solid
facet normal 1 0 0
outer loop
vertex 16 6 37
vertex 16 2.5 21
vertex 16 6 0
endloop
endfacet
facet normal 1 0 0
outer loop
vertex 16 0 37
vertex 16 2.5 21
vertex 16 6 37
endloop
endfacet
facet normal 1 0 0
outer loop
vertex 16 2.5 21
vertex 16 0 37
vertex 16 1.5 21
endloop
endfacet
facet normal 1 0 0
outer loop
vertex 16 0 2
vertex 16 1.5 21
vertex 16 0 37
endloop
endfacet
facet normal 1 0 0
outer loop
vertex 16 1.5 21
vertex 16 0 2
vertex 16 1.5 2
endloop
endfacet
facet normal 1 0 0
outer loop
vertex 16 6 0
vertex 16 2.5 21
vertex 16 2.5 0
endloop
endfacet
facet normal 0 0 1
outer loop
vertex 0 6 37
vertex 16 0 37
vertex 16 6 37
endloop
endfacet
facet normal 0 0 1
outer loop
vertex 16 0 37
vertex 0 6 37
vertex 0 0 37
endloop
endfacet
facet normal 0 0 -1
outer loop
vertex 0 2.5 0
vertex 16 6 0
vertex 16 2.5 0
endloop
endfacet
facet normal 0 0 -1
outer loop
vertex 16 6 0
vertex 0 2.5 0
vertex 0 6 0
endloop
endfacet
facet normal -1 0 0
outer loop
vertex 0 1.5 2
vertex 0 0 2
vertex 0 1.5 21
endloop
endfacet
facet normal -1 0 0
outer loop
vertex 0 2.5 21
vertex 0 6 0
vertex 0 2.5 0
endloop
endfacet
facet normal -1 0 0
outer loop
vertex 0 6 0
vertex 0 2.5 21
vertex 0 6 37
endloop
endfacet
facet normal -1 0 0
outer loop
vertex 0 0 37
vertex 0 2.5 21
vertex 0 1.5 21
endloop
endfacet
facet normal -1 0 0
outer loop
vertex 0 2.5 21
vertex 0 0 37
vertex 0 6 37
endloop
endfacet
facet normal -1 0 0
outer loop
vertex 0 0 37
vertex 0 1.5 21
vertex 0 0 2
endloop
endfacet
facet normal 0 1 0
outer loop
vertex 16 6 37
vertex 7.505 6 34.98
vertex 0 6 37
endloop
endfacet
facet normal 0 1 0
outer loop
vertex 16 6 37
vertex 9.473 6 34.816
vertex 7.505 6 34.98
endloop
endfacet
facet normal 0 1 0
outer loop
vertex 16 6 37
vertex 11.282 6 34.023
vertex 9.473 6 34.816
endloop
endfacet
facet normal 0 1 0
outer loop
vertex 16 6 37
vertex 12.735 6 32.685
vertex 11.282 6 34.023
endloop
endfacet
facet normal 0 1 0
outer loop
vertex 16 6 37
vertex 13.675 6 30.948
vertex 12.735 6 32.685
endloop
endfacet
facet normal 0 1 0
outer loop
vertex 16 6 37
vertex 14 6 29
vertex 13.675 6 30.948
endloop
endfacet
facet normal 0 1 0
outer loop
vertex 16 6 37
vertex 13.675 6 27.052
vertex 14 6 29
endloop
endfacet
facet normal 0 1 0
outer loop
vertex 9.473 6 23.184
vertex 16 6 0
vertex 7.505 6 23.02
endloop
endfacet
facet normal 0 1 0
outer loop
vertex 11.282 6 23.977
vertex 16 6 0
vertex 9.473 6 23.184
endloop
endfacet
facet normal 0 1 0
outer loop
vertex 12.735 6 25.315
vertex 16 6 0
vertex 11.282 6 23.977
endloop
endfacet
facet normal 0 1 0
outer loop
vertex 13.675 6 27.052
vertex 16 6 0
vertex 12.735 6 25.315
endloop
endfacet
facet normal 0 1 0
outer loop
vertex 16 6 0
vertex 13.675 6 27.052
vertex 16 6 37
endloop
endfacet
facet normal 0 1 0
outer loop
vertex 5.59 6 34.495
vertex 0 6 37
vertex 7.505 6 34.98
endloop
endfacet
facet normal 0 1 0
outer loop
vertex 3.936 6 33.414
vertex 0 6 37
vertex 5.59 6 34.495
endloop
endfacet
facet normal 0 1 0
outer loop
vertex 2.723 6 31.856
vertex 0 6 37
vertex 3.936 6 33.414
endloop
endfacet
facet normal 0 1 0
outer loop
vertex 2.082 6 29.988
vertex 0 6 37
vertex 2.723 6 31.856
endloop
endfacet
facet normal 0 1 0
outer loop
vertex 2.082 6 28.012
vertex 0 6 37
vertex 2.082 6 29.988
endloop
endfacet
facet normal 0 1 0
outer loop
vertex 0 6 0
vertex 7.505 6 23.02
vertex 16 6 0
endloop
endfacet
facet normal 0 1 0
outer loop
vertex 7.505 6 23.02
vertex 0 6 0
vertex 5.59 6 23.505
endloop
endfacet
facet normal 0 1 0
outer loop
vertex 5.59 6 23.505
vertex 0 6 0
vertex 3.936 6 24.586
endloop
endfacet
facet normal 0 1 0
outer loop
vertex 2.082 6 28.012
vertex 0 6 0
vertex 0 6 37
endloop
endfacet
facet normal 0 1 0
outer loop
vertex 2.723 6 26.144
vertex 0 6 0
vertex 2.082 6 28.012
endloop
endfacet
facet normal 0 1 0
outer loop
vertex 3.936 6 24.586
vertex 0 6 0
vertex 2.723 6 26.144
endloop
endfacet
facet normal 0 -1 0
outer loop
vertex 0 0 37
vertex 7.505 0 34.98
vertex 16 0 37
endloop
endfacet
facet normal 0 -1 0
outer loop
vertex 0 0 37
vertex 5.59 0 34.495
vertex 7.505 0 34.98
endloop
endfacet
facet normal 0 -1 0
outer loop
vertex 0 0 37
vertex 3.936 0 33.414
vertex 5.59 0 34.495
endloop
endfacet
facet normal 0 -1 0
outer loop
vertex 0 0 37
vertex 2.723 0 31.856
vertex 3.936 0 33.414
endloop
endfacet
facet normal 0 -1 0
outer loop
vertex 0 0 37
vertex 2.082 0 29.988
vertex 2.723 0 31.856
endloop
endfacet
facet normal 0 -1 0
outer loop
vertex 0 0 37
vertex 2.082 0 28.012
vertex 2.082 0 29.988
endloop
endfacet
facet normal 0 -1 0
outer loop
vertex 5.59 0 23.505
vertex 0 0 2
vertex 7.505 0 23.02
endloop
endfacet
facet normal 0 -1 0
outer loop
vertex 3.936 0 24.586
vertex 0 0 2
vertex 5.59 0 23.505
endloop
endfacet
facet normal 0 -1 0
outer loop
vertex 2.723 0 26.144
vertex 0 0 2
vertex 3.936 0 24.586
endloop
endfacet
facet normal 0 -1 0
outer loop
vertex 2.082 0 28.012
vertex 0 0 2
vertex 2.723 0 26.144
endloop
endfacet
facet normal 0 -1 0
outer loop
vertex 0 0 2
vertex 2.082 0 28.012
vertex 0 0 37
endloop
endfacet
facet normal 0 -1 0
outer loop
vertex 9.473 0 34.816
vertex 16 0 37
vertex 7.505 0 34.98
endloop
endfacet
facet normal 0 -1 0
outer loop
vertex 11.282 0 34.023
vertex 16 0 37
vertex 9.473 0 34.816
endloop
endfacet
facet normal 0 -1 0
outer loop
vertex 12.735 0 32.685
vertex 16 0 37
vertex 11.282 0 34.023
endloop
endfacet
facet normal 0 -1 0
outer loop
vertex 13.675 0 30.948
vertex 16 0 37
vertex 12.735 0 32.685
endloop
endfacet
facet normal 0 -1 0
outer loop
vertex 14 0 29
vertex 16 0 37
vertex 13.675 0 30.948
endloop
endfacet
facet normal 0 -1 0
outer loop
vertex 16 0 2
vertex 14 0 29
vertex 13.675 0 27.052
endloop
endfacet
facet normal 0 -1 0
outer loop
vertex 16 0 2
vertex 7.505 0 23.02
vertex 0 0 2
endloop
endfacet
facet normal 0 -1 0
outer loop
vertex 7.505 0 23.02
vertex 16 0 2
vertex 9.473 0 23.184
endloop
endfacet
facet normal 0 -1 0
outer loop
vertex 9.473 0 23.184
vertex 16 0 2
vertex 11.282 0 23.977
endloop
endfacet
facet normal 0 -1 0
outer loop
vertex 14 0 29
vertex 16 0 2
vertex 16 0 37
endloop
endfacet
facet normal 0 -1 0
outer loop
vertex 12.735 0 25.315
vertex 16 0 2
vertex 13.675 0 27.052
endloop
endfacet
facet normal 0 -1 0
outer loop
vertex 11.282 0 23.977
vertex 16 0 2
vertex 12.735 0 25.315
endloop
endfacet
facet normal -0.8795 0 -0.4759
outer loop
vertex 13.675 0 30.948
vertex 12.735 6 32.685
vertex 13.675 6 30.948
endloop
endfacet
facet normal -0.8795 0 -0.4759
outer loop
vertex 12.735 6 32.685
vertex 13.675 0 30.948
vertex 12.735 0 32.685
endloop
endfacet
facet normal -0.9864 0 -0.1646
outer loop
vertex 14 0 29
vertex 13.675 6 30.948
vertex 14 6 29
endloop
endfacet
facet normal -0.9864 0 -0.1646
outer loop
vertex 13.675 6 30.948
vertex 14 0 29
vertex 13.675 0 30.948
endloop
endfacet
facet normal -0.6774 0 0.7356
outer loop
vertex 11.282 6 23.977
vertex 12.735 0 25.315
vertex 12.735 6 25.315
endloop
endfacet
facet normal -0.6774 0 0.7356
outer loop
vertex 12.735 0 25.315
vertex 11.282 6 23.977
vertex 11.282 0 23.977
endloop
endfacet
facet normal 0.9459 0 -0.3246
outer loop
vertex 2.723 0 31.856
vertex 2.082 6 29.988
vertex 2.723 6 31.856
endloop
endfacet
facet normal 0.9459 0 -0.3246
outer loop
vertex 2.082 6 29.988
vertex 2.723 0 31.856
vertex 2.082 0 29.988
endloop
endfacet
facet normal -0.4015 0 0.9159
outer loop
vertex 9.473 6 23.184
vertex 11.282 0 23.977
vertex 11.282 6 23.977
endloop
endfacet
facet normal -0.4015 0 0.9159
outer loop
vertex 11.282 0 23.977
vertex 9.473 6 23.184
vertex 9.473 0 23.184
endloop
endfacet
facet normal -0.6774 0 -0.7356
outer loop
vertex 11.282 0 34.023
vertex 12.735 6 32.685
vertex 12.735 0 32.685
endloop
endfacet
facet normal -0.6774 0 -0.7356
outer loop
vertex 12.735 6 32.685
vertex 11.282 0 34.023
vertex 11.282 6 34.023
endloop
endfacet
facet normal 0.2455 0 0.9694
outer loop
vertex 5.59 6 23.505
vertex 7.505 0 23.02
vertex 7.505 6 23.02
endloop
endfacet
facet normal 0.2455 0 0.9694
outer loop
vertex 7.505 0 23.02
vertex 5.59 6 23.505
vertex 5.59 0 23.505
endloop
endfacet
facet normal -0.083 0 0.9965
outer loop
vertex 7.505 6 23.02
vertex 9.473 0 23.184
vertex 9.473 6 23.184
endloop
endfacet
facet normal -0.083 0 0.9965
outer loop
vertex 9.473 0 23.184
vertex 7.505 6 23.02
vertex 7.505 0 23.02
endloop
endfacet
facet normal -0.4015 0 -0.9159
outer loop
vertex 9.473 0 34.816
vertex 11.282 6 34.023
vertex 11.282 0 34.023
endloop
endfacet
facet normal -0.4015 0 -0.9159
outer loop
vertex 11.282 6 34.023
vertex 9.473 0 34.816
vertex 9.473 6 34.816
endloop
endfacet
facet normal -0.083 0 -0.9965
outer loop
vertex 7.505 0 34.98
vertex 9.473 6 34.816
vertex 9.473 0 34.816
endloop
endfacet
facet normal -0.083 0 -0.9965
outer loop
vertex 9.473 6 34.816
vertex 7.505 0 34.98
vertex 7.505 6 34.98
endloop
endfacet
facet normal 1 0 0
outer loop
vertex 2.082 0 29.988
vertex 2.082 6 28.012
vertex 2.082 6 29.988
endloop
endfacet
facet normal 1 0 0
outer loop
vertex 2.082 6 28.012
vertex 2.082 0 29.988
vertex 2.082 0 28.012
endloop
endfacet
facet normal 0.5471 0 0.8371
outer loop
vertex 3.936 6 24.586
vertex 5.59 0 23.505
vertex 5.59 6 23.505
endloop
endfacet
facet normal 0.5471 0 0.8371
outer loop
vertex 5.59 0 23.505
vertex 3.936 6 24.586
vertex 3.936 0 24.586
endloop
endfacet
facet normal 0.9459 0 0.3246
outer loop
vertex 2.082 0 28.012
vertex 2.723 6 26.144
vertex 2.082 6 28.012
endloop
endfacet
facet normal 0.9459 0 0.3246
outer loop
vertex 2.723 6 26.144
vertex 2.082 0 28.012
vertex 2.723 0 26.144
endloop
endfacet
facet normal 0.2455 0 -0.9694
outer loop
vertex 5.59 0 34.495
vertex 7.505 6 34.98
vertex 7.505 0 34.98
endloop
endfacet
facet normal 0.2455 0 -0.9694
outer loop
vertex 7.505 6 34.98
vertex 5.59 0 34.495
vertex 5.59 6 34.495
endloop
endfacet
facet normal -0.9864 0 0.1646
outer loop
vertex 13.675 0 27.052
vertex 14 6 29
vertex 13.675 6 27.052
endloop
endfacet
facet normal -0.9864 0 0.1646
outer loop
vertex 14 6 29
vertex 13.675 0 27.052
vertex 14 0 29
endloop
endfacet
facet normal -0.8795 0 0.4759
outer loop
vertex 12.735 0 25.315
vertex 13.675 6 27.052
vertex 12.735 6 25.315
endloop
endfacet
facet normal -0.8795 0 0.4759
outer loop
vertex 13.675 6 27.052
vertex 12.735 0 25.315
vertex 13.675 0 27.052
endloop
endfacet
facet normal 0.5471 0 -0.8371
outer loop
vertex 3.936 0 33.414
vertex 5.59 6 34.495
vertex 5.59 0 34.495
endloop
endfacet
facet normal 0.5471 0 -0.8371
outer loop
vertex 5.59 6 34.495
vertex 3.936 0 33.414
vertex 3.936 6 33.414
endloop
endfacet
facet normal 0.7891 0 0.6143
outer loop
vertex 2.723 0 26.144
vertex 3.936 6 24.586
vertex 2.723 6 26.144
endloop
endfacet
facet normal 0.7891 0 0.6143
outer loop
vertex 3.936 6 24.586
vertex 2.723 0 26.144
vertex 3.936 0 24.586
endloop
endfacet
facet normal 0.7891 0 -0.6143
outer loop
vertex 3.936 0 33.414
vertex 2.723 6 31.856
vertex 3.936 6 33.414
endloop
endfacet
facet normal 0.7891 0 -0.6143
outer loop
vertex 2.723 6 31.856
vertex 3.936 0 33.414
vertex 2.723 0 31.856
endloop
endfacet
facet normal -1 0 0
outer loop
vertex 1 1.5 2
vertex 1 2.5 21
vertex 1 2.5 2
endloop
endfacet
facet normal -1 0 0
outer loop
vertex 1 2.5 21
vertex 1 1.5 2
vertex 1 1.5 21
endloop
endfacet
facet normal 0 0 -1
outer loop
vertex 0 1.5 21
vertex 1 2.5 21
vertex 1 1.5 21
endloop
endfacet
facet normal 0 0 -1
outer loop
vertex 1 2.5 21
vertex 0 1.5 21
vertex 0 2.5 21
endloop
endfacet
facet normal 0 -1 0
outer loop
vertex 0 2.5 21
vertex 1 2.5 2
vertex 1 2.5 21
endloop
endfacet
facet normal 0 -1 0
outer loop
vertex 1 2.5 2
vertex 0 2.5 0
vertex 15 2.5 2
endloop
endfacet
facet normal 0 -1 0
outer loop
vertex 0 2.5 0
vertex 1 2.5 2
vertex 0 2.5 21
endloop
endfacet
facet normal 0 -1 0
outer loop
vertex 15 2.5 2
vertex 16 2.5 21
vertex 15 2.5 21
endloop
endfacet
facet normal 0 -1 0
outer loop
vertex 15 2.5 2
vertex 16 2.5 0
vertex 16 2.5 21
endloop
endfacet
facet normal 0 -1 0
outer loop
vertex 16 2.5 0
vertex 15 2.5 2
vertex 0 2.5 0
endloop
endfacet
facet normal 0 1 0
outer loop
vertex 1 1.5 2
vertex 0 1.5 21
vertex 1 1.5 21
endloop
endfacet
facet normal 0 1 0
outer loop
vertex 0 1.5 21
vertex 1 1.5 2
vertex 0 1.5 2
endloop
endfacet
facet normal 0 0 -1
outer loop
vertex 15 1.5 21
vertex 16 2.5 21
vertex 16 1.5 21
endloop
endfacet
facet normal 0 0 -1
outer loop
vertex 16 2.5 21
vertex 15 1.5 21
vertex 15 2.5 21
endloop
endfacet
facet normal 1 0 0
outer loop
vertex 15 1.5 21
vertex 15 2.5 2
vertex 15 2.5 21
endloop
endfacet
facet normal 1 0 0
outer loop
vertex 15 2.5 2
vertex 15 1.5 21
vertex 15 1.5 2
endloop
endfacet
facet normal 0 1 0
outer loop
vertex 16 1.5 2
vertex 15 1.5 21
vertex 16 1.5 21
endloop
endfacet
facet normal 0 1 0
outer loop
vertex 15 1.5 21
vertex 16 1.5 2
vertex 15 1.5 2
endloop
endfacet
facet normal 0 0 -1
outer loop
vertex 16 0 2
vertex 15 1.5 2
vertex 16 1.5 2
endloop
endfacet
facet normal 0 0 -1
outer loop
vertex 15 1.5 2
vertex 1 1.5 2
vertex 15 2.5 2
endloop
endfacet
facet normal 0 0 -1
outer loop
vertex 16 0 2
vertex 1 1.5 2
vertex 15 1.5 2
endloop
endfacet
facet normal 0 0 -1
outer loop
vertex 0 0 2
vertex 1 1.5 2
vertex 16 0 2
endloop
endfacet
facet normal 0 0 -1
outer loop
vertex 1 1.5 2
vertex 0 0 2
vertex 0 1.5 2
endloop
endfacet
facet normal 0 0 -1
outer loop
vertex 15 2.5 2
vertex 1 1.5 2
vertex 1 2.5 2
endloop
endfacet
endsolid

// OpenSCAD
card_holder_h = 21;

p_holder_l = 16;
p_holder_w = 6;
p_holder_h = card_holder_h+p_holder_l;

pot_holder();

module pot_holder() {
    difference() {
        cube([p_holder_l, p_holder_w, p_holder_h]);
        translate([p_holder_w+2,6,card_holder_h+8]) rotate(90,[1,0,0]) cylinder(h=p_holder_w,d=12);
        // Lid grooves
        gr_4_start_w = 19;
            // left
        translate([0, 1.5, 0]) cube([1, 1, 21]);
            // right
        translate([p_holder_l-1, 1.5, 0]) cube([1, 1, 21]);
            // bottom
        translate([0, 0, 0]) cube([p_holder_l, 2.5, 2]);
    }
}
